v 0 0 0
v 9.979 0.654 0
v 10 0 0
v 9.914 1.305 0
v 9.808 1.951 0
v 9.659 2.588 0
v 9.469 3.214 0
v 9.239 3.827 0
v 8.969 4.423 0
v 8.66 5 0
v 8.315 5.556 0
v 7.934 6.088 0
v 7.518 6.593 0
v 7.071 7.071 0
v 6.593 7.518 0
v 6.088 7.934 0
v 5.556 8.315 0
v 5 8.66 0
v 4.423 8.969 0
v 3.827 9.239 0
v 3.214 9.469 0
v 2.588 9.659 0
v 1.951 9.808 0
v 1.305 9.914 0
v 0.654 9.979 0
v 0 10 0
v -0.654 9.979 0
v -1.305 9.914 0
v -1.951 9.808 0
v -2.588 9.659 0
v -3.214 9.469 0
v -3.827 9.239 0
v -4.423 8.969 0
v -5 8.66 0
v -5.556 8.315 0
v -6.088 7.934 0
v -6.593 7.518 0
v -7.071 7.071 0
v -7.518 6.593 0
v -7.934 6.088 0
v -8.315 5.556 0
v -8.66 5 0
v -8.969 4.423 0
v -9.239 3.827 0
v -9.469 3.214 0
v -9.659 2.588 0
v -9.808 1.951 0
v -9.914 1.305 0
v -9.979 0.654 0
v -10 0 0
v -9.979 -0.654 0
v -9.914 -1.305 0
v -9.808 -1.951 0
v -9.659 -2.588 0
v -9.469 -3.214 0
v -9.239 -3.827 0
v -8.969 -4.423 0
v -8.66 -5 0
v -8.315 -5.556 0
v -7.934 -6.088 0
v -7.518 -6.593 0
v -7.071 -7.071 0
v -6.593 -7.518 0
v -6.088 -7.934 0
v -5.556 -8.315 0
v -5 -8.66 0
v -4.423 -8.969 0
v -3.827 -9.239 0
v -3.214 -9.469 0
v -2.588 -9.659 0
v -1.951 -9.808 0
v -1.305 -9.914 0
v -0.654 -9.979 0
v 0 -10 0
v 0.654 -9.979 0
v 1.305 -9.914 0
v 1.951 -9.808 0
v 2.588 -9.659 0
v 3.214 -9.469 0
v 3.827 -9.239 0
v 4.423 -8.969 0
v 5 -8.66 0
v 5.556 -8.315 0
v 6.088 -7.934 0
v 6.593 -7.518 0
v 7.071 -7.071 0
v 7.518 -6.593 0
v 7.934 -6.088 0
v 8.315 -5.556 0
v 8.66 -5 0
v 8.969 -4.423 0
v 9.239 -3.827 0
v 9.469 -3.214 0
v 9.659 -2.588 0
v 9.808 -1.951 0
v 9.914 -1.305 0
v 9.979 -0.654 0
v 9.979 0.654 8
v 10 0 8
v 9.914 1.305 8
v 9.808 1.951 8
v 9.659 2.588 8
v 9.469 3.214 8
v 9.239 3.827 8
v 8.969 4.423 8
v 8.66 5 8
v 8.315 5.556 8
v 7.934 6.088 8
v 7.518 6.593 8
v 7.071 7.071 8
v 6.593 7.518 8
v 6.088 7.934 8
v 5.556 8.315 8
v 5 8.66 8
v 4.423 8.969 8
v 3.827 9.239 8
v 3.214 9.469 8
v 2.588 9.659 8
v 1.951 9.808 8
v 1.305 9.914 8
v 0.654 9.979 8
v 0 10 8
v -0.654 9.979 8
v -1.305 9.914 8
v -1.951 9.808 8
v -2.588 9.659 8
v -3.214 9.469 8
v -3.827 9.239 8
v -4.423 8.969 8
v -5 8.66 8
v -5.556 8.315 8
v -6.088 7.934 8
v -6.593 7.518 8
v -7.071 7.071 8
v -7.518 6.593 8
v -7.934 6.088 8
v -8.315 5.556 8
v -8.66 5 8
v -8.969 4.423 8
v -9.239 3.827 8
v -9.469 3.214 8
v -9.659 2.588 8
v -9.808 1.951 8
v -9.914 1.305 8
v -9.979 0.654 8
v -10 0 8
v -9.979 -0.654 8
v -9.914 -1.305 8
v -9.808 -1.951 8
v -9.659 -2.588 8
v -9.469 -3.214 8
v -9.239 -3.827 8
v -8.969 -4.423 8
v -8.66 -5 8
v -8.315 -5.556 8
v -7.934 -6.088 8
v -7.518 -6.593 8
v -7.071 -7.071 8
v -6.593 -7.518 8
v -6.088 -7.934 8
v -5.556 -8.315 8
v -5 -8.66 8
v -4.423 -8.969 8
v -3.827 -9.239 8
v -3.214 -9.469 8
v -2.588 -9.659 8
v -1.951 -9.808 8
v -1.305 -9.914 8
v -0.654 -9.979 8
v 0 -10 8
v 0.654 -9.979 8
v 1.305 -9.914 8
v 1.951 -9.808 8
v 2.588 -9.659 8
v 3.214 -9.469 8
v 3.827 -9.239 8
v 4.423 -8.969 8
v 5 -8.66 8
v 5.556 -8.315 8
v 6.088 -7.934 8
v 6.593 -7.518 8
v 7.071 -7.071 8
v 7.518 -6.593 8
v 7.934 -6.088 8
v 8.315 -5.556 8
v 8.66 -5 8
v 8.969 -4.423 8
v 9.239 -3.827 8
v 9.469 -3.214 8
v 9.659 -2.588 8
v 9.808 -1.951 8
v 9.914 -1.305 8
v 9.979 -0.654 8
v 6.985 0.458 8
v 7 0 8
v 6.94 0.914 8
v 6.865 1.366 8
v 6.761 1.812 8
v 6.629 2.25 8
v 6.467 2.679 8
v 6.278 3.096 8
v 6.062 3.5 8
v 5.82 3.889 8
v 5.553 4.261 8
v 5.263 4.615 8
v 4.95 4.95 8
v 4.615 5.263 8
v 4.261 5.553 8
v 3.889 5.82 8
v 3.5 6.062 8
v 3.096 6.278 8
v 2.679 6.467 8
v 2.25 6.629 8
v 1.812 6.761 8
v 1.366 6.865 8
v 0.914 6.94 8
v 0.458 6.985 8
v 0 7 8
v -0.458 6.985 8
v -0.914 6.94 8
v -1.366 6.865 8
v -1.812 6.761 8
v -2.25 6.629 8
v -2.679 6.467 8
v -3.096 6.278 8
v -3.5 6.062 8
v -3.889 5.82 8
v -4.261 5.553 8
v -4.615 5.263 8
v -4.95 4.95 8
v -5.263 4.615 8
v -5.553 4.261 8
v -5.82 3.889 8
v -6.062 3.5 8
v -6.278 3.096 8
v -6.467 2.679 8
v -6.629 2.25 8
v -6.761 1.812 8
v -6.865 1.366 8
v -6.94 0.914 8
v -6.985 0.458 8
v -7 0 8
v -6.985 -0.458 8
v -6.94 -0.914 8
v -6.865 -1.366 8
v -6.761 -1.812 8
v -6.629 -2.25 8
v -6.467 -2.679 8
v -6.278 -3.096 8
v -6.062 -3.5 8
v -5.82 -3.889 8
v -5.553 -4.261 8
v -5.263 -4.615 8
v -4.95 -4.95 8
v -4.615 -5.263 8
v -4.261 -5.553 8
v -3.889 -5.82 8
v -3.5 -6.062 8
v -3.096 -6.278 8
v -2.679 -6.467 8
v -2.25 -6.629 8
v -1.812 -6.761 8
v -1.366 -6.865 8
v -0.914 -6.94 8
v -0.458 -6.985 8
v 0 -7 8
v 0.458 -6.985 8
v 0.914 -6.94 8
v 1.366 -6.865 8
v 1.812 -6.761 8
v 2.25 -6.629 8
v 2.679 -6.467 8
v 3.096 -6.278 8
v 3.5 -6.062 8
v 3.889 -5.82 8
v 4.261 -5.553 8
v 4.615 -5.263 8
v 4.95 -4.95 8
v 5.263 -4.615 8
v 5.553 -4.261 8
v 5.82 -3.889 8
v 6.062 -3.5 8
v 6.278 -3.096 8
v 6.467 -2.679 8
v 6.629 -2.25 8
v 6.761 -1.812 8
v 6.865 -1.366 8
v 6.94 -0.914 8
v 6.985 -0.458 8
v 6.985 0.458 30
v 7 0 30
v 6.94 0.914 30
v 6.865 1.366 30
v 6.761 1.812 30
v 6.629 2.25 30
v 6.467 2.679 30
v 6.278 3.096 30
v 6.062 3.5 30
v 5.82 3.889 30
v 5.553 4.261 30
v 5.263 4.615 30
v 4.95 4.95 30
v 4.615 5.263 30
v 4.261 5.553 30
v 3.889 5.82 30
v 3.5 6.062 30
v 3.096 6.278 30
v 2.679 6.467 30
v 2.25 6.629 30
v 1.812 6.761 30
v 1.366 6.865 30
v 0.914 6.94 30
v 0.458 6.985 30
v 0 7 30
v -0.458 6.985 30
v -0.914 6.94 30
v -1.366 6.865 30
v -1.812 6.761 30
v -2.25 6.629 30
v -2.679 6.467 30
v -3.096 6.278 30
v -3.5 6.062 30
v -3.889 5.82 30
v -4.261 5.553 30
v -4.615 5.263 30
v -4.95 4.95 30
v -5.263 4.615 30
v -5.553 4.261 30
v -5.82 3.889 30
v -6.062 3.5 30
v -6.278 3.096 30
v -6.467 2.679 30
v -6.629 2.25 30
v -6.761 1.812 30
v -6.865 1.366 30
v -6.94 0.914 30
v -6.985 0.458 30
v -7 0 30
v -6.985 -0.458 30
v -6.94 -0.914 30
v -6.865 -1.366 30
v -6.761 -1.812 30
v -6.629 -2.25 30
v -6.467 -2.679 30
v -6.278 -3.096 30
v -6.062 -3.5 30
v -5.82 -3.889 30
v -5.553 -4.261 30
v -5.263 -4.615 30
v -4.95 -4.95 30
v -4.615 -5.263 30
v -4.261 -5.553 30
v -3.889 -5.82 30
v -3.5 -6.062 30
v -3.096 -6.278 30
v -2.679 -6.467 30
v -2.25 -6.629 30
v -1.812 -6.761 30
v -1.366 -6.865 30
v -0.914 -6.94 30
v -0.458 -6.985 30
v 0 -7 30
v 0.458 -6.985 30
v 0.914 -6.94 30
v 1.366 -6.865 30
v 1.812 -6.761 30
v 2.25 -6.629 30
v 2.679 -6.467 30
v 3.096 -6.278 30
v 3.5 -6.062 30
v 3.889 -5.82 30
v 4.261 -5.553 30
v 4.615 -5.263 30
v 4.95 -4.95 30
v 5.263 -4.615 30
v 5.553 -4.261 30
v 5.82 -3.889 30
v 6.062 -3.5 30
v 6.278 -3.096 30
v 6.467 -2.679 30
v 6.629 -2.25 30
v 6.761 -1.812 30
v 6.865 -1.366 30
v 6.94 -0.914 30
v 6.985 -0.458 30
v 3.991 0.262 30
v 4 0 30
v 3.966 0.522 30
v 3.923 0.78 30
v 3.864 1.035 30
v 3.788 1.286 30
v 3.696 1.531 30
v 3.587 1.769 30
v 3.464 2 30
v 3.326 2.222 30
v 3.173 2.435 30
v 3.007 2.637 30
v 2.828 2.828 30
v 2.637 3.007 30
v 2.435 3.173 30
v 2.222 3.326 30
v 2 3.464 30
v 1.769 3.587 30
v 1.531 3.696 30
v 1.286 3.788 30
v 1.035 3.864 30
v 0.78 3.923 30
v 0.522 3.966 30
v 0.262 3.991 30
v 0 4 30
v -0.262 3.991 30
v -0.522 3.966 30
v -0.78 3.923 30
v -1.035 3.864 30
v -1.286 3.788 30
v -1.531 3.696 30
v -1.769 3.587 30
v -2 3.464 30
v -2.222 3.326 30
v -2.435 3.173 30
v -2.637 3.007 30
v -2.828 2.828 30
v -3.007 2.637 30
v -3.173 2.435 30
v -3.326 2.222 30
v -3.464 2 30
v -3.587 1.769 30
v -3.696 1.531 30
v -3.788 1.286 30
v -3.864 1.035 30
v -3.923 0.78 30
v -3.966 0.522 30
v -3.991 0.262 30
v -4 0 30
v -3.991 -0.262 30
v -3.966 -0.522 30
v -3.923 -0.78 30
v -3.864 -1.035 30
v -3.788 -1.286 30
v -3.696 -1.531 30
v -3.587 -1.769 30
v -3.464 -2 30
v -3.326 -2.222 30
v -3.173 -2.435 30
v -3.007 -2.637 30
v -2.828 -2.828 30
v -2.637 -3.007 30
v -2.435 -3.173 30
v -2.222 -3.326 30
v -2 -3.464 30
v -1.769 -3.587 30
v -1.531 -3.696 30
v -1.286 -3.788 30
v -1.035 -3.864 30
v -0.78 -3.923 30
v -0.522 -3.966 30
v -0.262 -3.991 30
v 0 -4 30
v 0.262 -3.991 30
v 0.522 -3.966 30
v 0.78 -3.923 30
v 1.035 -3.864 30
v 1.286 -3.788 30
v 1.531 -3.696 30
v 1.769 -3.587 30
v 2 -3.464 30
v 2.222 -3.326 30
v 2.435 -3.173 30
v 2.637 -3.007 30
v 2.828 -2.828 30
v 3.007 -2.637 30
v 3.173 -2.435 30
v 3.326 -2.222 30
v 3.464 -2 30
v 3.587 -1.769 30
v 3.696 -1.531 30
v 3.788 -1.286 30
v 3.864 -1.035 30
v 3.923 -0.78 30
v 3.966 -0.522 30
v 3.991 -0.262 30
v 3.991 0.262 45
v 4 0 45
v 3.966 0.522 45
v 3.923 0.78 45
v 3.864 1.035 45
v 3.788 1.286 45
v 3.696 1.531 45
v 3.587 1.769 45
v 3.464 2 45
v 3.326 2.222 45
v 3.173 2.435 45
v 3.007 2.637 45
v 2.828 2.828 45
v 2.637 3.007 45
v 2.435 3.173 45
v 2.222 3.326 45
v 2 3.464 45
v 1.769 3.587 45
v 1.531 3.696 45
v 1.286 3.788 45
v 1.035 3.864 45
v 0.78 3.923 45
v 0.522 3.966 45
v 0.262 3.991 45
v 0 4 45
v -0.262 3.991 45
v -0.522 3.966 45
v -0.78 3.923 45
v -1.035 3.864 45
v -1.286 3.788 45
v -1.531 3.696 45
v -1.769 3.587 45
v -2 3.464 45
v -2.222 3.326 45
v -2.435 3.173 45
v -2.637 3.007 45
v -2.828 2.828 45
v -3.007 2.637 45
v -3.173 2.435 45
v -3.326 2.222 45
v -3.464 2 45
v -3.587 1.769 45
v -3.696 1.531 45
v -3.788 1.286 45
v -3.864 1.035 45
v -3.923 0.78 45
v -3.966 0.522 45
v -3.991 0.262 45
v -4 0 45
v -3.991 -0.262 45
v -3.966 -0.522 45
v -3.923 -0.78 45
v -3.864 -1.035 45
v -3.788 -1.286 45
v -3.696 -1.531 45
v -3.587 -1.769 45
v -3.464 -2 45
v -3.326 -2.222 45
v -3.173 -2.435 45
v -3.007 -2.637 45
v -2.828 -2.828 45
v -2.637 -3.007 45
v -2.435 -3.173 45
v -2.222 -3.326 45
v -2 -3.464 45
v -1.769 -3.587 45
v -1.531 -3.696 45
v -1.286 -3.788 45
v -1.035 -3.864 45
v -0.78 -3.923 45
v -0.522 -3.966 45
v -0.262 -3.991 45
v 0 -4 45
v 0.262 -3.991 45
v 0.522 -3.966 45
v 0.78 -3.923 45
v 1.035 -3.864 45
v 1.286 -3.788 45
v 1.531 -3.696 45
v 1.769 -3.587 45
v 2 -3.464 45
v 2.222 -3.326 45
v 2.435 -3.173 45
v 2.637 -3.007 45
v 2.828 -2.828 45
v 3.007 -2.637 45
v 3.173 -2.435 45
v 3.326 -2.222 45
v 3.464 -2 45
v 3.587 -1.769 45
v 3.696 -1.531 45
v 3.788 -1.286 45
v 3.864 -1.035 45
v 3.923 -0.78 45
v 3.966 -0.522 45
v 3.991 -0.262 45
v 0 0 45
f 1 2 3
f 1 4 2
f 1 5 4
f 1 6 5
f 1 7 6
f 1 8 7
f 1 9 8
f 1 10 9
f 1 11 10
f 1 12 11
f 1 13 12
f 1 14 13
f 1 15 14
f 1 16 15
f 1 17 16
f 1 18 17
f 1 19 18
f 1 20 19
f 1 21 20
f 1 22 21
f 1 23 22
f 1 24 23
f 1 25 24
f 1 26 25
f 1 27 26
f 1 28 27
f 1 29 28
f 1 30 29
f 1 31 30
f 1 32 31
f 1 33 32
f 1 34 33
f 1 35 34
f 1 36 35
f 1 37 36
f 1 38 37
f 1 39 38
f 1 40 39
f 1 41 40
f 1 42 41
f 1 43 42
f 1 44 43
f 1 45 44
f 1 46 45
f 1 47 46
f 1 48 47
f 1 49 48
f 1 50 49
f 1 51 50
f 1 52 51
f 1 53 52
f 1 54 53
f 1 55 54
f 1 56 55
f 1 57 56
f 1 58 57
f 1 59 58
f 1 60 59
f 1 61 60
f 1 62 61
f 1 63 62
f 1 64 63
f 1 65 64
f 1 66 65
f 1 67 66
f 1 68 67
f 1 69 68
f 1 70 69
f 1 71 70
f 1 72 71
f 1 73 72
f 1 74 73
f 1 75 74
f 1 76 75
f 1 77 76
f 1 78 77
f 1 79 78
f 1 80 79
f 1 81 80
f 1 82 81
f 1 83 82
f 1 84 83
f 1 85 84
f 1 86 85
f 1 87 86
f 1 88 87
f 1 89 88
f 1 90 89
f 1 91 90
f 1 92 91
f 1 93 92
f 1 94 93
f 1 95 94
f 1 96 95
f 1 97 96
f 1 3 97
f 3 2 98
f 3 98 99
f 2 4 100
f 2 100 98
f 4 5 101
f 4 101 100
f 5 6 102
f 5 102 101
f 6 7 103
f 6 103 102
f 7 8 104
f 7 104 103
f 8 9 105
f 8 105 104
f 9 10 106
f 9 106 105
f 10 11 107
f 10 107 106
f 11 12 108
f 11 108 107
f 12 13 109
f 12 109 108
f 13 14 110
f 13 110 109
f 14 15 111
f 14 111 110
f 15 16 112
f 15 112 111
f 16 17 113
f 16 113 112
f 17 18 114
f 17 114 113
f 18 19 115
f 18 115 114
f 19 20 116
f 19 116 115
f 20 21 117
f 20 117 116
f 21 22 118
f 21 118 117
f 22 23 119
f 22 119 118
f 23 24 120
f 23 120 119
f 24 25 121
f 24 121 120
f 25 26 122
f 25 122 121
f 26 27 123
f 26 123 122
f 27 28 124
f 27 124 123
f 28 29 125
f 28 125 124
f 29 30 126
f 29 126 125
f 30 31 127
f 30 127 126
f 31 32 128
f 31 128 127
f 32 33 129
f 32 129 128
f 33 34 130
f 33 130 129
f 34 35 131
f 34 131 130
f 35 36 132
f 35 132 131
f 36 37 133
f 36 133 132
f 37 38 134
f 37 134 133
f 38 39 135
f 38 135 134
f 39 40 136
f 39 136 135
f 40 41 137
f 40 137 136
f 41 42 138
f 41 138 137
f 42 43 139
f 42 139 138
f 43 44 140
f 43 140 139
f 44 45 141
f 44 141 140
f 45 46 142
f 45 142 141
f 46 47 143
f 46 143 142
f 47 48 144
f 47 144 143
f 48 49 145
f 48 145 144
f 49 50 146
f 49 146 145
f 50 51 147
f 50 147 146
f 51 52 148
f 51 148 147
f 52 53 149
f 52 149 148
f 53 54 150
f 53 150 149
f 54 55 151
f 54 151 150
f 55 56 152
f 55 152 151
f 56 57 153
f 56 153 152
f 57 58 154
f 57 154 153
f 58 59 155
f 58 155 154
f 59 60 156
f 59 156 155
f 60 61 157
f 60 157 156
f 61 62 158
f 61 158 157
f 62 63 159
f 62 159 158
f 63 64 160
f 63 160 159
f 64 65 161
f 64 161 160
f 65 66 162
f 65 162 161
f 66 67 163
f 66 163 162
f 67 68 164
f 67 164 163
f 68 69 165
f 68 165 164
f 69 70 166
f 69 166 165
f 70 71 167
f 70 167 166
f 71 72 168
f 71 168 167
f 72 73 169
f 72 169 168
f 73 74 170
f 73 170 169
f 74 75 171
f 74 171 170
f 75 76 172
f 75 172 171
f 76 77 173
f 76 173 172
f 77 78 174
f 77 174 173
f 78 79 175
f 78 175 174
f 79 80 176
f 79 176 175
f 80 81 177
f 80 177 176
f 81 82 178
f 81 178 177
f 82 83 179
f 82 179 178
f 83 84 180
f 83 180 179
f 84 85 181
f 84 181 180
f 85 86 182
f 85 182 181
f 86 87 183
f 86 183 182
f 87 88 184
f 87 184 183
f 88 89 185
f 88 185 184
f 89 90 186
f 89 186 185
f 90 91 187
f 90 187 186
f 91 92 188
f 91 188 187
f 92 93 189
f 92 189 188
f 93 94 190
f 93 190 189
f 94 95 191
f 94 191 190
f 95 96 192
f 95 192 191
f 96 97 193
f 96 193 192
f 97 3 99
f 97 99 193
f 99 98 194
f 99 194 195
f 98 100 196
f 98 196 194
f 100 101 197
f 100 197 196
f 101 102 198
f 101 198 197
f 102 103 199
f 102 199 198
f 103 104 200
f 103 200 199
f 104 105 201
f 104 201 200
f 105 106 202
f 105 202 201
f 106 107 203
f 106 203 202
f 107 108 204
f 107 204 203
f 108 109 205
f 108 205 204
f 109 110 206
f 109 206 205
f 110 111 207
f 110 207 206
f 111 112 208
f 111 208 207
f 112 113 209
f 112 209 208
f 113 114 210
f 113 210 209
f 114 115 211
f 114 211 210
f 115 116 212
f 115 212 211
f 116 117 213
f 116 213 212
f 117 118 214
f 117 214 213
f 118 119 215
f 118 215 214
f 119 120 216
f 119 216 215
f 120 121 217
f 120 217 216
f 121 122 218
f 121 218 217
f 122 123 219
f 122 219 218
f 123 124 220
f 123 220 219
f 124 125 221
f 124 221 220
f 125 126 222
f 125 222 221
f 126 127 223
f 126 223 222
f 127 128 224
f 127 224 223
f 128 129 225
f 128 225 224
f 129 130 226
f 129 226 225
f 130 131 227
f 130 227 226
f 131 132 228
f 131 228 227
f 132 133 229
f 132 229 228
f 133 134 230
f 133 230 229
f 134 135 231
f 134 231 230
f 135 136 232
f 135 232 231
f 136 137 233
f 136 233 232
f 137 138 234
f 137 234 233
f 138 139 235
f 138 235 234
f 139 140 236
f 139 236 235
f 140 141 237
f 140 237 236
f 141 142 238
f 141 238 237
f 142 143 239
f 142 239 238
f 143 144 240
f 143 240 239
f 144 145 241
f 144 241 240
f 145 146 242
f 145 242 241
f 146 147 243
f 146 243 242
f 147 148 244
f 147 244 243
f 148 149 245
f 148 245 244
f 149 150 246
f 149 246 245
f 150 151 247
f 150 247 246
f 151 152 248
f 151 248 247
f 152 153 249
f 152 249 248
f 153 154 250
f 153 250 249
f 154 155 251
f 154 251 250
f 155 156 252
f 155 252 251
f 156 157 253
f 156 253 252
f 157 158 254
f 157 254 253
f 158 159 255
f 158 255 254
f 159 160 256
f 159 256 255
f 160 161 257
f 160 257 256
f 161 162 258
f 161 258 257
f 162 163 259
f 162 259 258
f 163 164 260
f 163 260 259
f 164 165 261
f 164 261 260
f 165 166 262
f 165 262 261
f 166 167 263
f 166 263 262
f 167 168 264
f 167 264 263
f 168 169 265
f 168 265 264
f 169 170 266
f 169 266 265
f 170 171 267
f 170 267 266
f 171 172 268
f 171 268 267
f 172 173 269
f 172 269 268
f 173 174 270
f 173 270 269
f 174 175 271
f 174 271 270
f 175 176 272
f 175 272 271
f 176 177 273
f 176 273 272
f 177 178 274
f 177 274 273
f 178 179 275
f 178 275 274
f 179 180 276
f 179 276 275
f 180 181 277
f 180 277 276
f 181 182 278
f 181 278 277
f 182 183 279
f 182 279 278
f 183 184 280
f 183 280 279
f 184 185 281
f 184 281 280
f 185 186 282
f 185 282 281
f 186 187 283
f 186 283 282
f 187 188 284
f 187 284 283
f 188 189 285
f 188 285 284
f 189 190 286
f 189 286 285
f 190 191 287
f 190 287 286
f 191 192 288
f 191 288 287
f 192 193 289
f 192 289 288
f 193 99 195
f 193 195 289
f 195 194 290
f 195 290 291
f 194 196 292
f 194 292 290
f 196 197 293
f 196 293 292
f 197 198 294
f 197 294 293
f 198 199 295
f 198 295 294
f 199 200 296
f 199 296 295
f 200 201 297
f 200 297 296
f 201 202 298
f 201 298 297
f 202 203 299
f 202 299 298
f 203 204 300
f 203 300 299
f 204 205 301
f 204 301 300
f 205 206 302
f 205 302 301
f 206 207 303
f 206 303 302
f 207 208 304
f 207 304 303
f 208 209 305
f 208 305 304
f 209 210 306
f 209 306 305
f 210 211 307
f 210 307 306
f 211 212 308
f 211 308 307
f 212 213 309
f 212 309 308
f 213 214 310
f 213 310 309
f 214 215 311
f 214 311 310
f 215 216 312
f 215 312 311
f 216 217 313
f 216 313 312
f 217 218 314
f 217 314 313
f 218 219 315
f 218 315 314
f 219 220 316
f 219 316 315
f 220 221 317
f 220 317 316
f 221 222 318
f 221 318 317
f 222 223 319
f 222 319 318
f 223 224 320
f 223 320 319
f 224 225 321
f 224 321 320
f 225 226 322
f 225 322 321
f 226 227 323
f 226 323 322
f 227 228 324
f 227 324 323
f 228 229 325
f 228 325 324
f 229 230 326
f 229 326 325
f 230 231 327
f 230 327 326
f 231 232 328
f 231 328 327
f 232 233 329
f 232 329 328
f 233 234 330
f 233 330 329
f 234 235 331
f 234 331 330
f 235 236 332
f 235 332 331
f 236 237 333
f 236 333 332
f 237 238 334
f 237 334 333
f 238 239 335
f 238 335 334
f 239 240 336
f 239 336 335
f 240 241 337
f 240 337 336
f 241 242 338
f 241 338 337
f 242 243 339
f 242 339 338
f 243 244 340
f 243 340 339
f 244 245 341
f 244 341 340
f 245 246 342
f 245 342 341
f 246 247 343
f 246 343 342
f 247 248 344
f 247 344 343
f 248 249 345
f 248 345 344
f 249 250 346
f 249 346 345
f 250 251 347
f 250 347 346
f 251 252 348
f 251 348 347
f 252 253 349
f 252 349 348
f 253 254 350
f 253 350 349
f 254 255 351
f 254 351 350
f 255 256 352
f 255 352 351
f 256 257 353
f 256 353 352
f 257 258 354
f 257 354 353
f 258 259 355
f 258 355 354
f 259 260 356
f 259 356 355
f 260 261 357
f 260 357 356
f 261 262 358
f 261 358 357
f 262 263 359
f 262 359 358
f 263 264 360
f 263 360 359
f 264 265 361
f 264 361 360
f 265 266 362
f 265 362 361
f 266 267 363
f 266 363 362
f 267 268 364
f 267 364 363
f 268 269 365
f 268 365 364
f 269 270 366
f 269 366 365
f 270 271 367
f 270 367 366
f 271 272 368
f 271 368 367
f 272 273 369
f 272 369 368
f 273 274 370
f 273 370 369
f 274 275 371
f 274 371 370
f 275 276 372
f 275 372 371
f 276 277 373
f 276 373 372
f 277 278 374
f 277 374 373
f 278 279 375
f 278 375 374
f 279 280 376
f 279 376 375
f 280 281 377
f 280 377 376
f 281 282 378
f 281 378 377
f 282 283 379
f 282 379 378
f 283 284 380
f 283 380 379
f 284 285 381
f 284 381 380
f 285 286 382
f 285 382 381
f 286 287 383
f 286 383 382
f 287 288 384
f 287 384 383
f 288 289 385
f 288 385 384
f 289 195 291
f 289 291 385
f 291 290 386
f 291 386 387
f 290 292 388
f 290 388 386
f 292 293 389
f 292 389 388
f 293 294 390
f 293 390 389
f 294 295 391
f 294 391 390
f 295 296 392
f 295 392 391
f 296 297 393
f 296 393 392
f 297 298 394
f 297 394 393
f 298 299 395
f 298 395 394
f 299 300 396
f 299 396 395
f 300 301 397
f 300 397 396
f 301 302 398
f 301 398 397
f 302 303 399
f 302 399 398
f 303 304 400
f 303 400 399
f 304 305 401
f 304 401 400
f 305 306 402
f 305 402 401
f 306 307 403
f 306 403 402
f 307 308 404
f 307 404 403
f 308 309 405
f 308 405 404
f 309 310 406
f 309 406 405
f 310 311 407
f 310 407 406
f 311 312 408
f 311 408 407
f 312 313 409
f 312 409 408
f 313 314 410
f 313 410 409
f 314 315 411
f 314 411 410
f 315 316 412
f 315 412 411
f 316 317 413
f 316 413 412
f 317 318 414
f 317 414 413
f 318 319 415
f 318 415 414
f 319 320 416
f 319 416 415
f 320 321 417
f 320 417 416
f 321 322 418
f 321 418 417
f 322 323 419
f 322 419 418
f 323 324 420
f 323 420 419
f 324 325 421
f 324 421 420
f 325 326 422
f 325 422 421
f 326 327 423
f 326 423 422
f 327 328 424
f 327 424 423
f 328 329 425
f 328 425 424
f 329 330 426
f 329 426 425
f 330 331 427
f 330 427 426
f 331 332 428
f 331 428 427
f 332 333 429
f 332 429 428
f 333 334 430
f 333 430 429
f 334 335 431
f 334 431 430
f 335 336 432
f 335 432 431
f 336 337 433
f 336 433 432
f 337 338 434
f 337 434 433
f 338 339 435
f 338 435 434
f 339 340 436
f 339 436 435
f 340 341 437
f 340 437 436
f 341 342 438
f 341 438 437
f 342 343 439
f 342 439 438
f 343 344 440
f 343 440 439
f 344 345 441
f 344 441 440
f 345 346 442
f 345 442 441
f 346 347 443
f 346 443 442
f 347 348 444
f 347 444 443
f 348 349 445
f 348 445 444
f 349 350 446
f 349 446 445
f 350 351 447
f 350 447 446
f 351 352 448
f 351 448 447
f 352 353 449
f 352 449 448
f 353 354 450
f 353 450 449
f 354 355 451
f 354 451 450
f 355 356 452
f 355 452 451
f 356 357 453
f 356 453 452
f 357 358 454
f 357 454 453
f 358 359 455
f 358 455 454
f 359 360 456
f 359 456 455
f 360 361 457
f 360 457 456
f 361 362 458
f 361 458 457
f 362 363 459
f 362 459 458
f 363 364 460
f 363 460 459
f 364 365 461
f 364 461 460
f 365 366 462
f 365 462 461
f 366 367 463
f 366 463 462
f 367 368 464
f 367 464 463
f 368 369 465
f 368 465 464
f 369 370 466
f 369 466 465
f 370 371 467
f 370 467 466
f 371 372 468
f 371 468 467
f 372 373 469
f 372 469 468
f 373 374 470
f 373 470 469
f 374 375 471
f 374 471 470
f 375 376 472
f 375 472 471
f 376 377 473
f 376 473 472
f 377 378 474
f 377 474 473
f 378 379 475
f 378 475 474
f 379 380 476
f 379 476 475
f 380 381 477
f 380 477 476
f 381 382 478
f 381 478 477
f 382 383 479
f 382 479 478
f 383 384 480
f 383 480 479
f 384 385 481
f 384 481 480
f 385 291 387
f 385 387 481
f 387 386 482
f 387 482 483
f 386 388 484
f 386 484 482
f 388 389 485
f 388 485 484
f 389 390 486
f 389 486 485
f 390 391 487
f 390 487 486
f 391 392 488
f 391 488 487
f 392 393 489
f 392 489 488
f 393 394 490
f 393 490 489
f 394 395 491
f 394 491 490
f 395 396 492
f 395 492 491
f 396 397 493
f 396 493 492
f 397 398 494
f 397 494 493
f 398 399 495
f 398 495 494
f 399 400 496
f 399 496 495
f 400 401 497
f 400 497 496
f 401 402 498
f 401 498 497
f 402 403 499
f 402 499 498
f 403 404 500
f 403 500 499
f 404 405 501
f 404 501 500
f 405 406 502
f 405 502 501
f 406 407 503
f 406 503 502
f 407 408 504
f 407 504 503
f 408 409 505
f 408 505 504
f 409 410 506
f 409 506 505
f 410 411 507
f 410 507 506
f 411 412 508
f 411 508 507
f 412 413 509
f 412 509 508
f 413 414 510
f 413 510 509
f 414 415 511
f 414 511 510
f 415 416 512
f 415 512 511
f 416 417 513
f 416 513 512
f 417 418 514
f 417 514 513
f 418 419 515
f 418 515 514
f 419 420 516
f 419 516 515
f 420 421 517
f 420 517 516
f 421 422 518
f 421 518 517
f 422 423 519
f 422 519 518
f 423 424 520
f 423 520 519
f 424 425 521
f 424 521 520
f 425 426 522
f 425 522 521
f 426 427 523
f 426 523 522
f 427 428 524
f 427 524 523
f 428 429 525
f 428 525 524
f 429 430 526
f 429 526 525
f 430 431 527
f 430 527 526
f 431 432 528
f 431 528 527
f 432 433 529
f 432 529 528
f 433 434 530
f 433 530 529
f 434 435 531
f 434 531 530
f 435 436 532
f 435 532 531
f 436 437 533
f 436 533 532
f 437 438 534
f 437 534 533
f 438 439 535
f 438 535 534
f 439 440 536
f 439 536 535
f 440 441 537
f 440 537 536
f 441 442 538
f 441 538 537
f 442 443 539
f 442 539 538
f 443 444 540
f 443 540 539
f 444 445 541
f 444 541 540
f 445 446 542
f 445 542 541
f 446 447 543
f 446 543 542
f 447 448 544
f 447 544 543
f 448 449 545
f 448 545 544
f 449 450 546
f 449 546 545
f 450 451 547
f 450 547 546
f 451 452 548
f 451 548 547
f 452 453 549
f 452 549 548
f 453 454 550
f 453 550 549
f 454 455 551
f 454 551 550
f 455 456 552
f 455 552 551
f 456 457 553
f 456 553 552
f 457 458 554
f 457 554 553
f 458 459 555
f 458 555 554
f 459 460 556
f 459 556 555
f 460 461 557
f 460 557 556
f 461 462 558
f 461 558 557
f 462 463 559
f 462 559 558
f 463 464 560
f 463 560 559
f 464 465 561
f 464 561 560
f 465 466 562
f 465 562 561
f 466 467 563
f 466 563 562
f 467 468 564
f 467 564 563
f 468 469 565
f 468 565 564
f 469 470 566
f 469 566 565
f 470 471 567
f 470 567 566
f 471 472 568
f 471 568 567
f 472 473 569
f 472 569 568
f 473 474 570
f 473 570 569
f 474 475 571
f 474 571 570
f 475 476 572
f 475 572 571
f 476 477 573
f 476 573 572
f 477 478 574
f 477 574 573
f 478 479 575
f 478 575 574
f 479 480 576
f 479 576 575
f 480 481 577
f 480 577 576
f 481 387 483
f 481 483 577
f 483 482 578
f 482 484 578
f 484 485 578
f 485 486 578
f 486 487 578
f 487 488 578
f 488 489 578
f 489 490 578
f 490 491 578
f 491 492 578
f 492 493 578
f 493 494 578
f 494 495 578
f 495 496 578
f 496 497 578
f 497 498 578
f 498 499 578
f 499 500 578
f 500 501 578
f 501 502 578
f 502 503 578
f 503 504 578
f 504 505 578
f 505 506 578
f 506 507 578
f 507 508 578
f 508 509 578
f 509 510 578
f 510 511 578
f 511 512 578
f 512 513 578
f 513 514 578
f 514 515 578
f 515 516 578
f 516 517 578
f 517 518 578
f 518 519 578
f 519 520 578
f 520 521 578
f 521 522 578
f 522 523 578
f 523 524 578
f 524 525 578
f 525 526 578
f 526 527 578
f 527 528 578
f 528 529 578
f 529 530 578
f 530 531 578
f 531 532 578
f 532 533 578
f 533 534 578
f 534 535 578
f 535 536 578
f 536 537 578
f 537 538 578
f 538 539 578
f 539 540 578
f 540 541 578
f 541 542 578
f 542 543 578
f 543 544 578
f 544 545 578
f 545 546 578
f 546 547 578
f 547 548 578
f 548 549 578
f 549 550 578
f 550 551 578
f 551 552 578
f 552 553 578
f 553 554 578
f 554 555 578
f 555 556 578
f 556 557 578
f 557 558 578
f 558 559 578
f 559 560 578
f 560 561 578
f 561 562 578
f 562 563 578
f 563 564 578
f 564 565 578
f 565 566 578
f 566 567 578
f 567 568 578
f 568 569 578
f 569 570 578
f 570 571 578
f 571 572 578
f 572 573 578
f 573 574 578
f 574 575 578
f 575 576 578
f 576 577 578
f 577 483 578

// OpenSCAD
// Original MechIntel educational model. CC0-1.0. Units: mm.
// Not a standardized or load-rated component.
$fn=96;
// Section points: [radius, height], mm. Edit to change the profile.
section=[[0, 0], [10, 0], [10, 8], [7, 8], [7, 30], [4, 30], [4, 45], [0, 45]];
rotate_extrude($fn=96) polygon(points=section);
